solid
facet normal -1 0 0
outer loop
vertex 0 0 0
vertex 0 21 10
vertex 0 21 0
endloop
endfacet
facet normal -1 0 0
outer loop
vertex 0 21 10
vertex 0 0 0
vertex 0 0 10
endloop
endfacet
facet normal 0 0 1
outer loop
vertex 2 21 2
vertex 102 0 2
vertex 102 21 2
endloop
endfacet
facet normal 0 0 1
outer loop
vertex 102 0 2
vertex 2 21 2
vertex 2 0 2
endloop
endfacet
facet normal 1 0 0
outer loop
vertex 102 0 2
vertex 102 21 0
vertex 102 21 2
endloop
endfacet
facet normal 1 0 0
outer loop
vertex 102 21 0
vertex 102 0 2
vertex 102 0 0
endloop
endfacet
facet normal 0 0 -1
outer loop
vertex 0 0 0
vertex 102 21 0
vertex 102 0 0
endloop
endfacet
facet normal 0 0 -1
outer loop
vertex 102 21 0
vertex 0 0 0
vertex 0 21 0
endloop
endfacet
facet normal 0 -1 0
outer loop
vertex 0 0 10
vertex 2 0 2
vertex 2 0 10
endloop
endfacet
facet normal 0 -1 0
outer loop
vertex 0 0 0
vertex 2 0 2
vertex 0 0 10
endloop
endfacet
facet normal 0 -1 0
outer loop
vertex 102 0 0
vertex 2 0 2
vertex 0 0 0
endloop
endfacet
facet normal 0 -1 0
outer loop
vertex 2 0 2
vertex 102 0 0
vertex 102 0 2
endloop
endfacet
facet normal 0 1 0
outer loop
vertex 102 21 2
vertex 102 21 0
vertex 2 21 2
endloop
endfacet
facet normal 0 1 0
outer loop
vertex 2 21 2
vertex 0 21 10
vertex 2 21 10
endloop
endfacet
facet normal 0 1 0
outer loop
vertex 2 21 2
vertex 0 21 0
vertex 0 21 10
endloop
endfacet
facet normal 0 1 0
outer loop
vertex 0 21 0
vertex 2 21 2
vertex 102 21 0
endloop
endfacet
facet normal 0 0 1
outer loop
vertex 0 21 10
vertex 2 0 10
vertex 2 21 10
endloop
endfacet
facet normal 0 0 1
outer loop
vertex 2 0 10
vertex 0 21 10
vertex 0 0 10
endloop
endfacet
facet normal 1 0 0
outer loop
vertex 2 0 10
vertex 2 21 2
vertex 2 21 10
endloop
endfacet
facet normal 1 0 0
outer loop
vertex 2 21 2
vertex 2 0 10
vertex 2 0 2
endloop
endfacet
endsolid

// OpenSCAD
// file: PotionExplosionMarbleHiddenTrackCore.scad
//TODO: Get correct length
length = 123;
diameter = 18;
wallThickness = 3;
angle = 5;
floorThickness = 10;
heightStepDown = .2;
offset = diameter + 5;
height = 40.42 + heightStepDown + offset;
washerDiameter = 16.25;
washerHeight = 1.4;
washerHeightOffset = 1;
magnetHeightOffset = 1;
magnetBaseInnerDiameter = 15.4;
frontMagnetBaseInnerDiameter = magnetBaseInnerDiameter + .3;
magnetHeight = 4.0;
width = diameter + wallThickness * 2;
centerOfConnectorX = 50;
centerOfConnectorY = 10;
centerOfBackConnectorX = width/2;
echo(centerOfBackConnectorX);
lidHeight = 2;
backstopHeight = 10;

module Track(useLeftConnector, useRightConnector) {
    difference(){

        cube([length, width, height]);
        
        translate([wallThickness, wallThickness, height - offset])
            rotate([0, angle, 0])
                cube([length + wallThickness, width - wallThickness * 2, height]);
        
        translate([wallThickness, diameter/2 + wallThickness, height - offset + 1 ])
            rotate([90 + angle, 0, 90])
                cylinder(length + 3, d=diameter);
        if(useLeftConnector)
            translate([centerOfConnectorX, washerHeight, centerOfConnectorY])
                rotate([90, 90, 0])
                    cylinder(washerHeight, d=washerDiameter);
        if(useRightConnector)
        translate([centerOfConnectorX, width, centerOfConnectorY])
            rotate([90, 90, 0])
                cylinder(magnetHeight, d=magnetBaseInnerDiameter);
        
    //    translate([0, centerOfBackConnectorX, centerOfConnectorY])
    //        rotate([90, 0, 90])
    //            cylinder(magnetHeight, d=magnetBaseInnerDiameter);
        
        translate([length - magnetHeight, centerOfBackConnectorX, centerOfConnectorY])
            rotate([90, 0, 90])
                cylinder(magnetHeight, d=frontMagnetBaseInnerDiameter);


        translate([wallThickness,wallThickness/2,height - (backstopHeight + lidHeight)])
            cube([length,width - wallThickness,lidHeight]);
    }

    //translate([length, 0, 0])
    //    import("C:/Code/Git/3DPrint/PotionExplosionMarbleTrack.stl");

}
// main file
include<PotionExplosionMarbleHiddenTrackCore.scad>
lipHeight = 10;
openingLength = diameter + 5;
    union() {
        cube([(length - openingLength) + (lidHeight), width - wallThickness, lidHeight]);
        cube([lidHeight, width - wallThickness, lipHeight]);
    }
 
